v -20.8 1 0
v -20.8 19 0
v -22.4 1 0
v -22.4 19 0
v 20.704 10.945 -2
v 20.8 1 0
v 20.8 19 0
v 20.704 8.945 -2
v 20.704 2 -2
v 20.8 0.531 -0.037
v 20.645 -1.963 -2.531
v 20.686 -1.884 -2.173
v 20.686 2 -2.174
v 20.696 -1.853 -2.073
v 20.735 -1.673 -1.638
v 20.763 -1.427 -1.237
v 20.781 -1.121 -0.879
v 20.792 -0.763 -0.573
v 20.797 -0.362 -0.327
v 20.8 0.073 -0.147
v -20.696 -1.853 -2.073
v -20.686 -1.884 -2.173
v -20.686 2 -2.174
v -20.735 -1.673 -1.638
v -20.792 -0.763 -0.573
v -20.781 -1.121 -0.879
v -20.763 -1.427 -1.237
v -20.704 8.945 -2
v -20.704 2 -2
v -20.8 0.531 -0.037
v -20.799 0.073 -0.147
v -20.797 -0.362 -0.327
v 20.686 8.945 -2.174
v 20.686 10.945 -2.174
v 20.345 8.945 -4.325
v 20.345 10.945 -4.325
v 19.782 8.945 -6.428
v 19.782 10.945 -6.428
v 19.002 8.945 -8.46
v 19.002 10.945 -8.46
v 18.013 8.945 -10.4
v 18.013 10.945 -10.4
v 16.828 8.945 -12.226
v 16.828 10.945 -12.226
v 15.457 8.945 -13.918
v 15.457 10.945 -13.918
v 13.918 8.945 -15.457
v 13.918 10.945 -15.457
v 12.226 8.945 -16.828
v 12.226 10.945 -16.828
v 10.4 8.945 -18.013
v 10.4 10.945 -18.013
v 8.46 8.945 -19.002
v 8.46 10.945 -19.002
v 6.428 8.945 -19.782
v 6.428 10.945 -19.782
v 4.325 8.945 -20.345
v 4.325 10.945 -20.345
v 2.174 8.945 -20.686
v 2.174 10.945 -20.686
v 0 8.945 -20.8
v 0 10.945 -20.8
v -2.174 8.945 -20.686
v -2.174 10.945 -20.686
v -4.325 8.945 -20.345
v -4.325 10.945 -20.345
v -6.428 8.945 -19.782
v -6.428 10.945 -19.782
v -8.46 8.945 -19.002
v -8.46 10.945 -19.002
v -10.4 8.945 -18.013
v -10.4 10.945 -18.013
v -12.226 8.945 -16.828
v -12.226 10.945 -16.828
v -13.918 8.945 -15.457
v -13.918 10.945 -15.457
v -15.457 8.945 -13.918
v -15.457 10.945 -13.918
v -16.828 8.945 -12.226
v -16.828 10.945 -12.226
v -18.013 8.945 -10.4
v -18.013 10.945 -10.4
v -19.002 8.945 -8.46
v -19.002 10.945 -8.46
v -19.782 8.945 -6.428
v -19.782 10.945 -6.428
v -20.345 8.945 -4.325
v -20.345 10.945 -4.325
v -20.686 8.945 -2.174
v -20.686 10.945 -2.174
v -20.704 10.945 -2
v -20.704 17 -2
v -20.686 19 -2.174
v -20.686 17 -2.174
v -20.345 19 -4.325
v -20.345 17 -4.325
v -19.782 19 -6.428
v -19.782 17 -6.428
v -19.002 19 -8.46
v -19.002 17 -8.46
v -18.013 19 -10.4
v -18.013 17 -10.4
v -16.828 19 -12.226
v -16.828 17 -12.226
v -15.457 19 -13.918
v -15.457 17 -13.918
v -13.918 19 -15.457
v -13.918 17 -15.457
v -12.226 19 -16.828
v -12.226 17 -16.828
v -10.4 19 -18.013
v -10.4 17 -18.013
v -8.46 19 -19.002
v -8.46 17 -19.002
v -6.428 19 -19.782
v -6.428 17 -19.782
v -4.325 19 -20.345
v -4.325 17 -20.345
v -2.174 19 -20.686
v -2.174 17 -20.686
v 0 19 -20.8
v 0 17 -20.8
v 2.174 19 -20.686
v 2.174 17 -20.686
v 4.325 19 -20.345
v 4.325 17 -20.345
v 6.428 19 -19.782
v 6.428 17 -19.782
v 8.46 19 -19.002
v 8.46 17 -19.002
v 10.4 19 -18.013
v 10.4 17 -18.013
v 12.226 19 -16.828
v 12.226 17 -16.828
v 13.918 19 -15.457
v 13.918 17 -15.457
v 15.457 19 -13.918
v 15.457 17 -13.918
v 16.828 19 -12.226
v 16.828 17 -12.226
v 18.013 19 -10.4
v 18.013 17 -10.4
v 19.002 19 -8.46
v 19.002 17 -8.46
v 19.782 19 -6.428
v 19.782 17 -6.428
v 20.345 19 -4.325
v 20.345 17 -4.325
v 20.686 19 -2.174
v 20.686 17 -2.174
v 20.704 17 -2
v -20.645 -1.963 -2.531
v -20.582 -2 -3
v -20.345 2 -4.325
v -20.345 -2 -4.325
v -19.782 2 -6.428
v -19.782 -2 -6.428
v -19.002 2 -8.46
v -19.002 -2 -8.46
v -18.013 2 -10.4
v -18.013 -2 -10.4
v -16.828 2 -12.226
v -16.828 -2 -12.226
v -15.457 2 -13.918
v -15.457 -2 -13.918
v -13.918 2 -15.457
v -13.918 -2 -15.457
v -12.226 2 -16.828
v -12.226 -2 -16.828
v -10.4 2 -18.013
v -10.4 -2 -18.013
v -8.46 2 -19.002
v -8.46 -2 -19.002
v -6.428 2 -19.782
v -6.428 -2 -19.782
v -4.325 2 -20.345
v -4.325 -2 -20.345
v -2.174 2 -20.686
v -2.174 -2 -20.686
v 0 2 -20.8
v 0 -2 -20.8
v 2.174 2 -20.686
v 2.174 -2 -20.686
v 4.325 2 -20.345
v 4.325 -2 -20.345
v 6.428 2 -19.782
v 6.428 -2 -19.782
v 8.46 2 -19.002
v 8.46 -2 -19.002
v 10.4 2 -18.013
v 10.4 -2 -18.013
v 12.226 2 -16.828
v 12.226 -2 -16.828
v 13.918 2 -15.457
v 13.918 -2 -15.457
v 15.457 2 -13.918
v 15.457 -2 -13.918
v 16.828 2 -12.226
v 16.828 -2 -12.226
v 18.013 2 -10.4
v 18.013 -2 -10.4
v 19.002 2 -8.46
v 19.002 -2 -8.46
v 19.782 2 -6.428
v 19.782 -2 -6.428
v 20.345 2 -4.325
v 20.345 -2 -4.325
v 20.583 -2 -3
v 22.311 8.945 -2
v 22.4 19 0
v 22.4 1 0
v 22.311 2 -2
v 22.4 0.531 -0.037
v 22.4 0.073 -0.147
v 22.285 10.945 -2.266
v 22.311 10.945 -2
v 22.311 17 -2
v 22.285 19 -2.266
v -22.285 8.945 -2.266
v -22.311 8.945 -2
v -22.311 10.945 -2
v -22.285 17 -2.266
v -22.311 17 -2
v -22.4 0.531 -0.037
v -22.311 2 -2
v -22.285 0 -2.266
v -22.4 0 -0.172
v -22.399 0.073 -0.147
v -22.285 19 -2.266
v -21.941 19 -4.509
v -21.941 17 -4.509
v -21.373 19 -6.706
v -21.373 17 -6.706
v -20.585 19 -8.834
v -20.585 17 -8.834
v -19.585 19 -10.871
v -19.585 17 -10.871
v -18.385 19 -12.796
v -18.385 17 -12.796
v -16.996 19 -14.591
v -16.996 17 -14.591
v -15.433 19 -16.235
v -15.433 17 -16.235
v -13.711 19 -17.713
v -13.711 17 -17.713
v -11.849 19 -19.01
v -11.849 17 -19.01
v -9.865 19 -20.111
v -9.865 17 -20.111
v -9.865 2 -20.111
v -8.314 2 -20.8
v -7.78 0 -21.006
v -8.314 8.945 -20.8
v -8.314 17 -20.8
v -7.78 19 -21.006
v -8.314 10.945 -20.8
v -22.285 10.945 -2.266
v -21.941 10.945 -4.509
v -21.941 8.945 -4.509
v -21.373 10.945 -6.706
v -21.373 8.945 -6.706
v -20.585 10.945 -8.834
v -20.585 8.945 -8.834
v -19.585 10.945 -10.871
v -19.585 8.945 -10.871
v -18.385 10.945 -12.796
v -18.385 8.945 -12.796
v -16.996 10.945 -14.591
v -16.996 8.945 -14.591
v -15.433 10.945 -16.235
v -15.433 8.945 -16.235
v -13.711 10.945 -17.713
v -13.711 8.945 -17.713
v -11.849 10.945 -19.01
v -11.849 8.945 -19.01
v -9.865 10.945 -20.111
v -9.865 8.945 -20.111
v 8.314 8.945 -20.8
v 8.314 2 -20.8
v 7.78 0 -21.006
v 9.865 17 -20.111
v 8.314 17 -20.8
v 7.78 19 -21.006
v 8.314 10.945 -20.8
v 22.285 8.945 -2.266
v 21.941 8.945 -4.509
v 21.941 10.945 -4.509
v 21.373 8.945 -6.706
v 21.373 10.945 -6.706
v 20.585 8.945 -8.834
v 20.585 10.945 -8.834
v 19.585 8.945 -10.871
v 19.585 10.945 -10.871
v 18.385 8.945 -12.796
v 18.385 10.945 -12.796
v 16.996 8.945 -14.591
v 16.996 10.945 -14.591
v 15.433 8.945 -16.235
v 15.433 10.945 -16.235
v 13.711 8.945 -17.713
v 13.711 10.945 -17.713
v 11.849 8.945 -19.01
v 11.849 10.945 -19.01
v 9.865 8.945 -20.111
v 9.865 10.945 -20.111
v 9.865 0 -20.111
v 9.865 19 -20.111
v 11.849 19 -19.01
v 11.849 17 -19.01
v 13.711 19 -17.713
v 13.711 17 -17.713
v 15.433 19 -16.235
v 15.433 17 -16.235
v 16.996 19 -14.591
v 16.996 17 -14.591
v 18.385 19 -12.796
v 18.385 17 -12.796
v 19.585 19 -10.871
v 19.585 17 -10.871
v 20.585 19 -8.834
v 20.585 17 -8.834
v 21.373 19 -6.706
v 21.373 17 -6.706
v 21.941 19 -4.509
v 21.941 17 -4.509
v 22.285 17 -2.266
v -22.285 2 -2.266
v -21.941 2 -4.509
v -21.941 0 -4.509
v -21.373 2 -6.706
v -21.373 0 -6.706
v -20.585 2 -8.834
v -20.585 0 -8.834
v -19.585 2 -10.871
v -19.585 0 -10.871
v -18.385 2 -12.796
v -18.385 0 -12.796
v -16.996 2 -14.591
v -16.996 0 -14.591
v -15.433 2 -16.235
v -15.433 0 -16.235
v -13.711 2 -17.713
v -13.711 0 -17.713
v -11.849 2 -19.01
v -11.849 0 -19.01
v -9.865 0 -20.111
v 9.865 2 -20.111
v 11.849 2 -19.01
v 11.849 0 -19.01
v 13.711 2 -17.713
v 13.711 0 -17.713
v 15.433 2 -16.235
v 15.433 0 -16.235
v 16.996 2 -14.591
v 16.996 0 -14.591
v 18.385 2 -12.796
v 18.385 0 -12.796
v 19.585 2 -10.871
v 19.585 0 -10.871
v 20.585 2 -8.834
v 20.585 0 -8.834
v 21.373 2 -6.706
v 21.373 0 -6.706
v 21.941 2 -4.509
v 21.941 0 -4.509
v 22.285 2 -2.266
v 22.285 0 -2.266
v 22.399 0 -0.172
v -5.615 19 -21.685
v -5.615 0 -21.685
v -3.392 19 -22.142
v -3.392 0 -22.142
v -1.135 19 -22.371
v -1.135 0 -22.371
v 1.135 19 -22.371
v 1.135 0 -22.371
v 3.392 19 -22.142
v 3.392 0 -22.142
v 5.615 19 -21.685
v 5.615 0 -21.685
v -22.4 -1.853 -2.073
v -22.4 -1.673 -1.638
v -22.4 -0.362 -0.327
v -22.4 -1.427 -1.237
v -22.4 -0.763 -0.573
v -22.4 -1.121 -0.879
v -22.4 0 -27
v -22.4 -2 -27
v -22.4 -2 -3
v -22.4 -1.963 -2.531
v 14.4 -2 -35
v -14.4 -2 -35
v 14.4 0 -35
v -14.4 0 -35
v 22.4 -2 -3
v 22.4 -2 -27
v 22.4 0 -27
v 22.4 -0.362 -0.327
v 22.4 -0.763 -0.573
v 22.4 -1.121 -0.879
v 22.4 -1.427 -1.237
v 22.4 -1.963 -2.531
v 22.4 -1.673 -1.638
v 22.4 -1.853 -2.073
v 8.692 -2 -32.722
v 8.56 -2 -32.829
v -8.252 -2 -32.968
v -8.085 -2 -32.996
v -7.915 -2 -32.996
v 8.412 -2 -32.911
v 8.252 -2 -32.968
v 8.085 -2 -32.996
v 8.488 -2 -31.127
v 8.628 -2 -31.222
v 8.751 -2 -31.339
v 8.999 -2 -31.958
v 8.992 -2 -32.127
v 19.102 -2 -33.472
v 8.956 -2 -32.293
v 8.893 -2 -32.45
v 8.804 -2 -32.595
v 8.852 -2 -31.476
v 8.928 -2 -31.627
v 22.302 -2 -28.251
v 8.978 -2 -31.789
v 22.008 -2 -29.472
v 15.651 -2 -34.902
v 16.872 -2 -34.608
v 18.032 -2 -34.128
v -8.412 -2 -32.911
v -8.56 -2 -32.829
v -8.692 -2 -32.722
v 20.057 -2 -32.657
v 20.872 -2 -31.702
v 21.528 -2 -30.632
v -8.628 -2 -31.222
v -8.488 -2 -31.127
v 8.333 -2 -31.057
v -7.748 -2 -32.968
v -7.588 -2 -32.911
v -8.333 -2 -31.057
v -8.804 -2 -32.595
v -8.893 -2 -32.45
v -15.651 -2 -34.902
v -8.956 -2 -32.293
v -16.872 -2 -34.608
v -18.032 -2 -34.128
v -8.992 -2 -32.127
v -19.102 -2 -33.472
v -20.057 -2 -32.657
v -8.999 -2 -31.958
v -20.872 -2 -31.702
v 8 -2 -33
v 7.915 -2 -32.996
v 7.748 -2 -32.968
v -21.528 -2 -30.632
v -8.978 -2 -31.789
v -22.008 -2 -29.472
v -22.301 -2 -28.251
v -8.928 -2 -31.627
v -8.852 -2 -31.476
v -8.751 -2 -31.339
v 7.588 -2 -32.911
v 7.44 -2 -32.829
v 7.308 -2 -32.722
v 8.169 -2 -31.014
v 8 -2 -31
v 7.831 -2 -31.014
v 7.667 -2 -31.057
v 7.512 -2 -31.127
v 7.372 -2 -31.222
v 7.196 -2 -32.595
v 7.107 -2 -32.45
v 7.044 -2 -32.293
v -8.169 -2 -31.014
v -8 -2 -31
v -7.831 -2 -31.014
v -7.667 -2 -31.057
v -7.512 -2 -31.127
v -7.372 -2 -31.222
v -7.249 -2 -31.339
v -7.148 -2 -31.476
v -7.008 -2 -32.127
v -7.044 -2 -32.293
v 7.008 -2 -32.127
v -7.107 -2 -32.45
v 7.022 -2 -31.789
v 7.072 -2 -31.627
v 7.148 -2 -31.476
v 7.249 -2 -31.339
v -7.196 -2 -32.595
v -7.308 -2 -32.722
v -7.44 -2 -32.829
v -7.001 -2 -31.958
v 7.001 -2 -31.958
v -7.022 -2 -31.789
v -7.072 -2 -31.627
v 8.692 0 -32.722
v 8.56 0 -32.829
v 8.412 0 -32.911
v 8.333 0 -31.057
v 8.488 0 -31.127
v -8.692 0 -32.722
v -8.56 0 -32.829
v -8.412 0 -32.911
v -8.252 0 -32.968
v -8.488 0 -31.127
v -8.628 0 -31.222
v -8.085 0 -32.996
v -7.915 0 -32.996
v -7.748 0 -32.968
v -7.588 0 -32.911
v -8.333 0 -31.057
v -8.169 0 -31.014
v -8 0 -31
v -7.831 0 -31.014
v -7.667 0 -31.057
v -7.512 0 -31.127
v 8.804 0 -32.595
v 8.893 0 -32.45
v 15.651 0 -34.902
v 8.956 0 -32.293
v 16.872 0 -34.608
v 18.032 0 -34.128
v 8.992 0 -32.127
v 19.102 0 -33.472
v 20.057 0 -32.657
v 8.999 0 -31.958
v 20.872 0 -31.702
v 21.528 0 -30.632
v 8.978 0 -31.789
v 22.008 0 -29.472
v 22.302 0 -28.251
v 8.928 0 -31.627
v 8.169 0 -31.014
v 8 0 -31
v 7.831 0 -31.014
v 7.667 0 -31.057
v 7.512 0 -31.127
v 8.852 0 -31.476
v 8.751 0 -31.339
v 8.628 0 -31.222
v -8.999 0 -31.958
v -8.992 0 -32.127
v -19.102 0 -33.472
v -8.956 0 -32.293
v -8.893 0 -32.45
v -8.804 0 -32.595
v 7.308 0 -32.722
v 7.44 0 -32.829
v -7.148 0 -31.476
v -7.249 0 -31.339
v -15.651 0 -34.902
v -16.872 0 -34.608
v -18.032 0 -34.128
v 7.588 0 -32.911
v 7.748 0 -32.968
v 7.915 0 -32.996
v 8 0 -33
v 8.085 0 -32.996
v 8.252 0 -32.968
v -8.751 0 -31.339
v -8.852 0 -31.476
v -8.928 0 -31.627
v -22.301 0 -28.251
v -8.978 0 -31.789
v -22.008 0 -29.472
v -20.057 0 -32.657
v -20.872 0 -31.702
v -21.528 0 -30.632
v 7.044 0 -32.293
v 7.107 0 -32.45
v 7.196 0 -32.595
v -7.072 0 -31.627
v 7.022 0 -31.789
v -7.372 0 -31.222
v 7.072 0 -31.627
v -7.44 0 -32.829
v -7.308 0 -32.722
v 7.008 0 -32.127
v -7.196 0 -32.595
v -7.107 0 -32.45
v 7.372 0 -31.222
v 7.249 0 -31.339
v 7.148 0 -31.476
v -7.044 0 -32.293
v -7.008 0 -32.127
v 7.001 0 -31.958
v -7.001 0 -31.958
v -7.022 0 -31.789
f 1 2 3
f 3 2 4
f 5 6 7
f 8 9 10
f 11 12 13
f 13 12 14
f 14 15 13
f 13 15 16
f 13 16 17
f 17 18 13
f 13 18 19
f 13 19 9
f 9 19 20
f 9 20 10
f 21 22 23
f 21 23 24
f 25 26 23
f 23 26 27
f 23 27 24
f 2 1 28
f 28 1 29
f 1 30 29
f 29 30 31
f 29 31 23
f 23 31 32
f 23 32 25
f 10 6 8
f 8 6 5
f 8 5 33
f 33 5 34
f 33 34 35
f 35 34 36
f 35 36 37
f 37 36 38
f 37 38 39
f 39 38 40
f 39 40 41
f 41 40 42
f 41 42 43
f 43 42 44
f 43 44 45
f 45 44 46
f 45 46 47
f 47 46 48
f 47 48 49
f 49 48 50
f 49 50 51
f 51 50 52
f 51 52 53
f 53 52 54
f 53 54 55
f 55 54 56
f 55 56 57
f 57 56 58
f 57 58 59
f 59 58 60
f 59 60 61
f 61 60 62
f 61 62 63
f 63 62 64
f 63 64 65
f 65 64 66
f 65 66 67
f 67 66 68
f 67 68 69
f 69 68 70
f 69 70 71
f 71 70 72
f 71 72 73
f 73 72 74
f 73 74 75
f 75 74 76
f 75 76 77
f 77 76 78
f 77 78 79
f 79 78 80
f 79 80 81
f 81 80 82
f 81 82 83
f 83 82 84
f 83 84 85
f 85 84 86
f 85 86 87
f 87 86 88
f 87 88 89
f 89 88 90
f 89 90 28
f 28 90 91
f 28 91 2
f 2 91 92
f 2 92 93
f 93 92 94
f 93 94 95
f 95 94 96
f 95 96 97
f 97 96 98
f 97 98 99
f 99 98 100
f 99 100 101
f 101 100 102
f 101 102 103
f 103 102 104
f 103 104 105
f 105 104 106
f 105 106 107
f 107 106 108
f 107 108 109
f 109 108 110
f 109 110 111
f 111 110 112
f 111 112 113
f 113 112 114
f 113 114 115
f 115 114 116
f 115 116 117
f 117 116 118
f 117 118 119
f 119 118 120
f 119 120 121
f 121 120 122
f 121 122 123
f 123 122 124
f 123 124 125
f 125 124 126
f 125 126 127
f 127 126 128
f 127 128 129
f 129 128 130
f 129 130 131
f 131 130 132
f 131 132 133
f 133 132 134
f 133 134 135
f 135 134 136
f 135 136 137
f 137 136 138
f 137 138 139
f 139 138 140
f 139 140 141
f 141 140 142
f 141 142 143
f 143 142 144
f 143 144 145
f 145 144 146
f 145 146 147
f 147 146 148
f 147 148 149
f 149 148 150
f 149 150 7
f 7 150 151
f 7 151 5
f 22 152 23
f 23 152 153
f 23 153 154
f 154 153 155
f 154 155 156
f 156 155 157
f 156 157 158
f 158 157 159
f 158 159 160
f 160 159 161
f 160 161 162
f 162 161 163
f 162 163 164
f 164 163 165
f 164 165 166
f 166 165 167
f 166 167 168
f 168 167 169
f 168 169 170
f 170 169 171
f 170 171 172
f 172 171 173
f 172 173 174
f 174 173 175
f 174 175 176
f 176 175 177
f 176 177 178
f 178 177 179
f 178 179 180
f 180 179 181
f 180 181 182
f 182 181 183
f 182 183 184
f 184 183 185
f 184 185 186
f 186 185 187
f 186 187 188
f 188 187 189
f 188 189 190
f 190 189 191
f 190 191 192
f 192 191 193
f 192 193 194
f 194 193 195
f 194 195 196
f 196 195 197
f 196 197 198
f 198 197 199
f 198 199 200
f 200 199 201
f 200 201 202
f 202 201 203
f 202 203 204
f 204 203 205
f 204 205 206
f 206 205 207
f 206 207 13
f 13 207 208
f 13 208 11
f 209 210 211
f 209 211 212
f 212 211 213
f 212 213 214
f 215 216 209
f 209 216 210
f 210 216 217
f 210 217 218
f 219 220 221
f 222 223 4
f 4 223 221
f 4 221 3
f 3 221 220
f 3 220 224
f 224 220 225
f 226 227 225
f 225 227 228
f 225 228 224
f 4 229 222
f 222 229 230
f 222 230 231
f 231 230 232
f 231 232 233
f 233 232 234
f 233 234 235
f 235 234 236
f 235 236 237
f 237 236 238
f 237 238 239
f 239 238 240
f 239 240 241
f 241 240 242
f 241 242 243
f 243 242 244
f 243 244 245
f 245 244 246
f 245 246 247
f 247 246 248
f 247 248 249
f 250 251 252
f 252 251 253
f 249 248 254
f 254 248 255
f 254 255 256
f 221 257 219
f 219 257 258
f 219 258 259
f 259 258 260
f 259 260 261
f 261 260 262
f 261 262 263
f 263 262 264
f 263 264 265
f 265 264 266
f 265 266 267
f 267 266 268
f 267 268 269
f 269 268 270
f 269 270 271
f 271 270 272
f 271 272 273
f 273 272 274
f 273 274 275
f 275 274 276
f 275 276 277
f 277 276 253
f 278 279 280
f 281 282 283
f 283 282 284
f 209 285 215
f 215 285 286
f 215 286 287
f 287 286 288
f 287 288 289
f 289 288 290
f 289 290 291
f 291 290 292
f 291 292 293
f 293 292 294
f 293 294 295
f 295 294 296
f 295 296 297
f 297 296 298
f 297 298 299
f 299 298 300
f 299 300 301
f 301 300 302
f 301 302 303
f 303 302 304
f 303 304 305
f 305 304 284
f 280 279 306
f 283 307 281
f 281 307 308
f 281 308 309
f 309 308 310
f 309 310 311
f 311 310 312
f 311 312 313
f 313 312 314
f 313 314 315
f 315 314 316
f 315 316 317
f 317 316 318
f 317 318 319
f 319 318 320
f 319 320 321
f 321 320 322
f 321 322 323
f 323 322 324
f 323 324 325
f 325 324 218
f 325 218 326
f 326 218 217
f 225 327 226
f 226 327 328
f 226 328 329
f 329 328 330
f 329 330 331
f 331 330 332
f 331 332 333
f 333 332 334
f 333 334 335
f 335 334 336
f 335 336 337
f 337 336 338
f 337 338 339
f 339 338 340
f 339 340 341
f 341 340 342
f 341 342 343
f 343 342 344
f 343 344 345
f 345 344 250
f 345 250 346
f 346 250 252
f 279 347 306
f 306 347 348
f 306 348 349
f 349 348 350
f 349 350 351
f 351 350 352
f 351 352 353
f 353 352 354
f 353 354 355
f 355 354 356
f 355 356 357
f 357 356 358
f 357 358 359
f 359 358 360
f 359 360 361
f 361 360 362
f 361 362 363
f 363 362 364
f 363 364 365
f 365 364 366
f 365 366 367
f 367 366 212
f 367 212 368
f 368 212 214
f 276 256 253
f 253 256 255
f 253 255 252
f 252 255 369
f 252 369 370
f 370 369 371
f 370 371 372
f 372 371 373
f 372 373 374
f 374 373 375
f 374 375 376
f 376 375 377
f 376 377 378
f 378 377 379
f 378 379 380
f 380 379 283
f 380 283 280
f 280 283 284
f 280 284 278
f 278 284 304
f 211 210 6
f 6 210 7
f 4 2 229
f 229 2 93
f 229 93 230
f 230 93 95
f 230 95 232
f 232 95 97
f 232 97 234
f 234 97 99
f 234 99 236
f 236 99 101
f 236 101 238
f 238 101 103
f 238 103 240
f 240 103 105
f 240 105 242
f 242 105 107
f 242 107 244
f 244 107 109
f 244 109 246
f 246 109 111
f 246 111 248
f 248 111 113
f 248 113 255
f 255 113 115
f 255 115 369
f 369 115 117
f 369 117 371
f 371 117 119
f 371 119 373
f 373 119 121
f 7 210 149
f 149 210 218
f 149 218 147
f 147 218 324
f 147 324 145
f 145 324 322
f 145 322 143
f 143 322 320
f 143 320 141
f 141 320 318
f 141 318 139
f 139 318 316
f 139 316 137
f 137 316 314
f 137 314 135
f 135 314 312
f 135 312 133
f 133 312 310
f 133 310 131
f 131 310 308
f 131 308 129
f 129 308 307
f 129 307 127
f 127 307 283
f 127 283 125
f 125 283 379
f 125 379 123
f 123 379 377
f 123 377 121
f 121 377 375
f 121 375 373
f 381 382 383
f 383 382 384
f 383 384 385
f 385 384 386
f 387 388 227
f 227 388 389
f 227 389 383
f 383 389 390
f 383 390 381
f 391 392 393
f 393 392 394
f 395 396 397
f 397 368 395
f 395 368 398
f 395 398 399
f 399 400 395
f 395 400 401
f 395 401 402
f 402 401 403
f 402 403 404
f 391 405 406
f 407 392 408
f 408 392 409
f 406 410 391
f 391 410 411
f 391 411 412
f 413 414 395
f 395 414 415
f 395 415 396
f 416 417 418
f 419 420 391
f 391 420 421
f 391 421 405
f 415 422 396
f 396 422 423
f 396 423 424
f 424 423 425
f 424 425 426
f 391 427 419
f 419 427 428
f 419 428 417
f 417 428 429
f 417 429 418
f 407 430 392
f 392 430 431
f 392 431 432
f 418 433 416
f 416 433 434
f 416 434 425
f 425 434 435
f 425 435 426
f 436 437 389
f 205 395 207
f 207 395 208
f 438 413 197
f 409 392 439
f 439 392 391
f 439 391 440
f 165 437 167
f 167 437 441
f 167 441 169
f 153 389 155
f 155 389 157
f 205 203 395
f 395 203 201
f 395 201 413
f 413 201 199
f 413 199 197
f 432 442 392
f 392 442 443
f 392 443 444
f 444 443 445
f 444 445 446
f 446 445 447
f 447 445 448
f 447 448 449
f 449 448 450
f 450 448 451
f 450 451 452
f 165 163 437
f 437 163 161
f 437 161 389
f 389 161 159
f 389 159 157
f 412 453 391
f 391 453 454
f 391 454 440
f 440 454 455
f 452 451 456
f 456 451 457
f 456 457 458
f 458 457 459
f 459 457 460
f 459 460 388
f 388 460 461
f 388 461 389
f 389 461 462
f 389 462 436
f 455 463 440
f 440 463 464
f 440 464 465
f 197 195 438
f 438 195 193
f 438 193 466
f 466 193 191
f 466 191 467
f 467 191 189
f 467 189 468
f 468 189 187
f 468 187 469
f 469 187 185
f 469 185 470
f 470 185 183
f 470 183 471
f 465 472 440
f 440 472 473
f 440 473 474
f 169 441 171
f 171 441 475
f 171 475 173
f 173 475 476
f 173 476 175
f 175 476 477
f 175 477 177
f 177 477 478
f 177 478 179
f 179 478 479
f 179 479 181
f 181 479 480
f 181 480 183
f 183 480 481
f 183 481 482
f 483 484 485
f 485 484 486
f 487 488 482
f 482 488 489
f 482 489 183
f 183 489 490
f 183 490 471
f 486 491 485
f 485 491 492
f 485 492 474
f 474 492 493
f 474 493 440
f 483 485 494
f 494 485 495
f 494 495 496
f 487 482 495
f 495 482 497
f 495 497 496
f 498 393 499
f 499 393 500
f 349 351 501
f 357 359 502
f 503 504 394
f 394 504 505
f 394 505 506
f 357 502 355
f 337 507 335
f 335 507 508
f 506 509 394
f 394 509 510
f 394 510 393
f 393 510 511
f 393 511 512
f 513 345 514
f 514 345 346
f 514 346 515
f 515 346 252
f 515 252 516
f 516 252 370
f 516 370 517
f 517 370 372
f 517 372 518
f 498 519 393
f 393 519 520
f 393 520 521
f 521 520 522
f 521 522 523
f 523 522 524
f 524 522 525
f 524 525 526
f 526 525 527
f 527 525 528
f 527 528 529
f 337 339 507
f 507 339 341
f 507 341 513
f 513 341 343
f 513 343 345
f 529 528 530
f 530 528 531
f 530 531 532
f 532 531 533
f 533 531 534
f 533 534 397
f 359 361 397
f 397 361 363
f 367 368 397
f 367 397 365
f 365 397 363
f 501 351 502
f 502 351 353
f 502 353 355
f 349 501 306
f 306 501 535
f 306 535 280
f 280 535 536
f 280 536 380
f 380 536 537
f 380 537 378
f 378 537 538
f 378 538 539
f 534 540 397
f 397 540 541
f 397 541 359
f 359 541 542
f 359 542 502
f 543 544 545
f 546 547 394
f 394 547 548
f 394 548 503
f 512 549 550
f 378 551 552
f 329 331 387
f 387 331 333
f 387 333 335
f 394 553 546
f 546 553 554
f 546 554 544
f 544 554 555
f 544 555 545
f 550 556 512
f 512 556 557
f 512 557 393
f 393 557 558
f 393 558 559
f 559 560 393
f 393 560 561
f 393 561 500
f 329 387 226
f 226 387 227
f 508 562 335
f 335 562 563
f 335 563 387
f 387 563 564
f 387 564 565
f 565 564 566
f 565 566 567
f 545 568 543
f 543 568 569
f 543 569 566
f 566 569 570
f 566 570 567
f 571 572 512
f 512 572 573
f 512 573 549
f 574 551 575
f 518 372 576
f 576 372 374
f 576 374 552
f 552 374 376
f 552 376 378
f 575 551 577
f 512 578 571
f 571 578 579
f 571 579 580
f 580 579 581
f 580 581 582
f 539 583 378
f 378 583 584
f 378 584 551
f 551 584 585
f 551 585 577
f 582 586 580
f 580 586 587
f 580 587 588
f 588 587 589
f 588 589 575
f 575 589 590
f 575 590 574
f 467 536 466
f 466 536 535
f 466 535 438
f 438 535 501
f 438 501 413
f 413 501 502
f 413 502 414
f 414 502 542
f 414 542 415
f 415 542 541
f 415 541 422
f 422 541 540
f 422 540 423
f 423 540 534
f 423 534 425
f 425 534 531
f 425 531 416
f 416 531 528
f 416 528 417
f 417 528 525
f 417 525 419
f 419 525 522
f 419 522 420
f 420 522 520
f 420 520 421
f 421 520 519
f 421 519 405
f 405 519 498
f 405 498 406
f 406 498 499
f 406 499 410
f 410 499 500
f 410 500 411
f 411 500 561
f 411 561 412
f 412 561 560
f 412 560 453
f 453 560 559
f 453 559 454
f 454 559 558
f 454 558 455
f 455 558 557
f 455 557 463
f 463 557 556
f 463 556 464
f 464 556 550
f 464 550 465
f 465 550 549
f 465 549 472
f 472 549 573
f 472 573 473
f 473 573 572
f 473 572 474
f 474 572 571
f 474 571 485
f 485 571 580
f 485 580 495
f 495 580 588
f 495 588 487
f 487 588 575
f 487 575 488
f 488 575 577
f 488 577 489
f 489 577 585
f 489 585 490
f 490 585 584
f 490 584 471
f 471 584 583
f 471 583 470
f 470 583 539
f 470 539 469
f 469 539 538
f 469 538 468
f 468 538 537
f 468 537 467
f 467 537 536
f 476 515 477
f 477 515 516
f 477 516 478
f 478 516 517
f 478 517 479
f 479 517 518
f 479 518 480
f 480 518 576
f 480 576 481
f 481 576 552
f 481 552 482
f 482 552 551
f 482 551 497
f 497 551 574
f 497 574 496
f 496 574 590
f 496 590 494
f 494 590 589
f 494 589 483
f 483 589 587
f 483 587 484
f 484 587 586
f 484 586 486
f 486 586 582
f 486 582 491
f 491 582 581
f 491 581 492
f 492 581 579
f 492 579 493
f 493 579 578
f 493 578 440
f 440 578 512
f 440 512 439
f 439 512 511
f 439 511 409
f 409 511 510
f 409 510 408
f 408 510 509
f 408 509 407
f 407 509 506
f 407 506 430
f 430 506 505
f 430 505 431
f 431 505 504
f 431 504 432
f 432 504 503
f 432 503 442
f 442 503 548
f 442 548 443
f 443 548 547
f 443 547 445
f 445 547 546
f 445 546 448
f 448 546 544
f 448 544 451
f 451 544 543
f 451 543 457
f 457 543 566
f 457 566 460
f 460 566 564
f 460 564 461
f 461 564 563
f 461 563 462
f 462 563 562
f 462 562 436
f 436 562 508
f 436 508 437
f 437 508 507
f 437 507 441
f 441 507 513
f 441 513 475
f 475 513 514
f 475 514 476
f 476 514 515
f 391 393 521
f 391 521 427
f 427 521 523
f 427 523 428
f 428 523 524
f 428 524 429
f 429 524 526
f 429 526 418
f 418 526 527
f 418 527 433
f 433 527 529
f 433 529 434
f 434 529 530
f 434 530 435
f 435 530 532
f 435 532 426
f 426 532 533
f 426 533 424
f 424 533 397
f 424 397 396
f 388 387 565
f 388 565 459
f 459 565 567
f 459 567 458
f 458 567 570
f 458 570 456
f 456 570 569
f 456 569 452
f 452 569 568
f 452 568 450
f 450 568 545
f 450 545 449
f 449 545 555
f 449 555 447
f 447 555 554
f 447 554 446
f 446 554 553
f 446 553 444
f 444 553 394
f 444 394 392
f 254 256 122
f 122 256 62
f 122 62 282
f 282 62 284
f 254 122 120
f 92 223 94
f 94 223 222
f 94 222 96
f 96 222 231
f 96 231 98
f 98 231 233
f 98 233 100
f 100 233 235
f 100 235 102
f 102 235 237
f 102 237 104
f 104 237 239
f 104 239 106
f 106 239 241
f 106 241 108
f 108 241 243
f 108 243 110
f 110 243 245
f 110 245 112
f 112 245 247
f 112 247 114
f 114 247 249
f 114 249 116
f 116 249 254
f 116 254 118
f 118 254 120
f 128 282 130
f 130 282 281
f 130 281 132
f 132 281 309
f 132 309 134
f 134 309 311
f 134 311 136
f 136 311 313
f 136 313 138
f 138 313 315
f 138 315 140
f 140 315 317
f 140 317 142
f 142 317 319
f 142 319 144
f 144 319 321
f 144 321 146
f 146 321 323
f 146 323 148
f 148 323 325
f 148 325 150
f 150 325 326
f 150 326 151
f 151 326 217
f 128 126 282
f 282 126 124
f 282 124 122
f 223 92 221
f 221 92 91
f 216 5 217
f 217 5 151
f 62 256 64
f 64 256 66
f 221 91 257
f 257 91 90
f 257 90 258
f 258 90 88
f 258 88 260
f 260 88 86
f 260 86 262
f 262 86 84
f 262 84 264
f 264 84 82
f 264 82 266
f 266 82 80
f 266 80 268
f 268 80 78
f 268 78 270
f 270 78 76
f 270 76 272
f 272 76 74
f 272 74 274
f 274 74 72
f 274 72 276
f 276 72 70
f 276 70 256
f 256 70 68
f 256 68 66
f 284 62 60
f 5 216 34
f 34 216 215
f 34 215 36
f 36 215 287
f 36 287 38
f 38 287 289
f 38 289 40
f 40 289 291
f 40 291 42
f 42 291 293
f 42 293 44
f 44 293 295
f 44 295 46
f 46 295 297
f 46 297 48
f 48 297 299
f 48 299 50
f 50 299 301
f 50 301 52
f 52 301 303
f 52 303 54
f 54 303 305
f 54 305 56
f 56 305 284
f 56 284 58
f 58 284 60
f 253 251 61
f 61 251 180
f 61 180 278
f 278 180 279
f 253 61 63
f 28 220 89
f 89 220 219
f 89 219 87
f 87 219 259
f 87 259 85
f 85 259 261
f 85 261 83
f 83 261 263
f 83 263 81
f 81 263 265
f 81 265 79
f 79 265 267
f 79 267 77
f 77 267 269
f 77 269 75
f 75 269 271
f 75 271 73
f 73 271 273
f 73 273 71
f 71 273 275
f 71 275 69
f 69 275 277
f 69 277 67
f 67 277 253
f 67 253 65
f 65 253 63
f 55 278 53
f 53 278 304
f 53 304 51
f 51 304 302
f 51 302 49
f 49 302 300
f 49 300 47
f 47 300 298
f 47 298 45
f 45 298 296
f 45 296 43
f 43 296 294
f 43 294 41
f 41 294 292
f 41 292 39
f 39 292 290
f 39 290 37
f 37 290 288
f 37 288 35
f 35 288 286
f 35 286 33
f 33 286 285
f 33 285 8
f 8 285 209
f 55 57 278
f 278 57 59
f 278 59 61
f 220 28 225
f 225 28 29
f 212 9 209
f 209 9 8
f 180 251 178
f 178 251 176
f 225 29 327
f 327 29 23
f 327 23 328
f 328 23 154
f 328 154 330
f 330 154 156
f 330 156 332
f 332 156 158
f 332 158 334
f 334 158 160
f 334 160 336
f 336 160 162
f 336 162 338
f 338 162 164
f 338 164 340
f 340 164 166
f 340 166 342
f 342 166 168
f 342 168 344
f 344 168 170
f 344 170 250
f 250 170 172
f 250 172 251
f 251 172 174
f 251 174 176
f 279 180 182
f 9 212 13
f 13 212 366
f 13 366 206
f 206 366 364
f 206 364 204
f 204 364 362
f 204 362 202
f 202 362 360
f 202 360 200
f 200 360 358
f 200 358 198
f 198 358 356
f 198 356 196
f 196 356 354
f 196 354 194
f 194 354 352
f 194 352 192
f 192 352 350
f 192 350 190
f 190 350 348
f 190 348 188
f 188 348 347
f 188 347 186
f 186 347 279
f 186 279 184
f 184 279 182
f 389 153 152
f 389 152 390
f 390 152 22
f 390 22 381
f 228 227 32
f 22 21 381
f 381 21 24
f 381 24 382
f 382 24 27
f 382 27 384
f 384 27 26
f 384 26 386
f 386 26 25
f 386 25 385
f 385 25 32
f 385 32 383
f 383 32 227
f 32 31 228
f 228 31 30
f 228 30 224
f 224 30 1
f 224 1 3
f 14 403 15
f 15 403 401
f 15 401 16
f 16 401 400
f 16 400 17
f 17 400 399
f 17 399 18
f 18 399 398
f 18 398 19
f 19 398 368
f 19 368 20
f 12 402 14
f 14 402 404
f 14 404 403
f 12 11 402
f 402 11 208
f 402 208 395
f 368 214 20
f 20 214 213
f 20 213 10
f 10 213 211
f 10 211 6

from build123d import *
from build123d.topology import SkipClean

# Parameters (mm, degrees)
BOSS_EXTRUDE1_DEPTH = 19
SKETCH2_W           = 44.8
SKETCH2_H           = 35
BOSS_EXTRUDE2_DEPTH = 2
CUT_EXTRUDE1_START  = -2
SKETCH3_R           = 20.8
CUT_EXTRUDE1_DEPTH  = 2
SKETCH4_R           = 1
CUT_EXTRUDE2_DEPTH  = 2
FILLET1_R           = 8
SKETCH5_W           = 18.8
SKETCH5_H           = 6.055148909
SKETCH5_H_2         = 6.944851091
CUT_EXTRUDE3_DEPTH  = 47
FILLET2_START       = -23
FILLET2_DEPTH       = 46


with BuildPart() as part:
    # Sketch1 → Boss-Extrude1 (new body)
    with BuildSketch(Plane(origin=(0, 0, 0), x_dir=(1, 0, 0), z_dir=(0, 1, 0))):
        with BuildLine():
            Line((-22.4, 0), (-20.8, 0))
            ThreePointArc((-20.8, 0), (0, 20.8), (20.8, 0))
            Line((20.8, 0), (22.4, 0))
            ThreePointArc((22.4, 0), (0, 22.4), (-22.4, 0))
        make_face()
    extrude(amount=BOSS_EXTRUDE1_DEPTH)

    # Sketch2 → Boss-Extrude2 (add)
    with BuildSketch(Plane.XZ):
        with Locations((0, -17.5)):
            Rectangle(SKETCH2_W, SKETCH2_H)
    extrude(amount=BOSS_EXTRUDE2_DEPTH)

    # Sketch3 → Cut-Extrude1 (cut)
    with SkipClean():  # the faces are left unmerged after this step: merging them gives an invalid solid
        with BuildSketch(Plane(origin=(0, 0, 0), x_dir=(1, 0, 0), z_dir=(0, 1, 0)).offset(CUT_EXTRUDE1_START)):
            Circle(SKETCH3_R)
        extrude(amount=CUT_EXTRUDE1_DEPTH, mode=Mode.SUBTRACT)
    add(part.part.scale(1), mode=Mode.REPLACE)  # the faces are merged on a copy

    # Sketch4 → Cut-Extrude2 (cut)
    with BuildSketch(Plane(origin=(0, 0, 0), x_dir=(1, 0, 0), z_dir=(0, 1, 0))):
        with Locations(Location((-8, 32, 0), (0, 0, 270))):
            Circle(SKETCH4_R)
        with Locations(Location((8, 32, 0), (0, 0, 90))):
            Circle(SKETCH4_R)
    extrude(amount=-CUT_EXTRUDE2_DEPTH, mode=Mode.SUBTRACT)

    # Fillet1
    fillet1_edges = [part.edges().sort_by_distance(p)[0] for p in [
        (-22.4, -1, -35),
        (22.4, -1, -35),
    ]]
    fillet(fillet1_edges, radius=FILLET1_R)

    # Sketch5 → Cut-Extrude3 (cut)
    with BuildSketch(Plane.ZY.offset(22.4)):
        with Locations((-11.4, 13.972425546)):
            Rectangle(SKETCH5_W, SKETCH5_H)
        with Locations((-11.4, 5.472425546)):
            Rectangle(SKETCH5_W, SKETCH5_H_2)
    extrude(amount=-CUT_EXTRUDE3_DEPTH, mode=Mode.SUBTRACT)

    # Fillet2: read off the stored shape, not the designer's step
    # Fillet2 outline → Fillet2 (cut)
    with BuildSketch(Plane.YZ.offset(FILLET2_START)):
        with BuildLine():
            Line((1, 0), (-2, 0))
            Line((-2, 0), (-2, -3))
            ThreePointArc((-2, -3), (-1.121320344, -0.878679656), (1, 0))
        make_face()
    extrude(amount=FILLET2_DEPTH, mode=Mode.SUBTRACT)


solid = part.part
